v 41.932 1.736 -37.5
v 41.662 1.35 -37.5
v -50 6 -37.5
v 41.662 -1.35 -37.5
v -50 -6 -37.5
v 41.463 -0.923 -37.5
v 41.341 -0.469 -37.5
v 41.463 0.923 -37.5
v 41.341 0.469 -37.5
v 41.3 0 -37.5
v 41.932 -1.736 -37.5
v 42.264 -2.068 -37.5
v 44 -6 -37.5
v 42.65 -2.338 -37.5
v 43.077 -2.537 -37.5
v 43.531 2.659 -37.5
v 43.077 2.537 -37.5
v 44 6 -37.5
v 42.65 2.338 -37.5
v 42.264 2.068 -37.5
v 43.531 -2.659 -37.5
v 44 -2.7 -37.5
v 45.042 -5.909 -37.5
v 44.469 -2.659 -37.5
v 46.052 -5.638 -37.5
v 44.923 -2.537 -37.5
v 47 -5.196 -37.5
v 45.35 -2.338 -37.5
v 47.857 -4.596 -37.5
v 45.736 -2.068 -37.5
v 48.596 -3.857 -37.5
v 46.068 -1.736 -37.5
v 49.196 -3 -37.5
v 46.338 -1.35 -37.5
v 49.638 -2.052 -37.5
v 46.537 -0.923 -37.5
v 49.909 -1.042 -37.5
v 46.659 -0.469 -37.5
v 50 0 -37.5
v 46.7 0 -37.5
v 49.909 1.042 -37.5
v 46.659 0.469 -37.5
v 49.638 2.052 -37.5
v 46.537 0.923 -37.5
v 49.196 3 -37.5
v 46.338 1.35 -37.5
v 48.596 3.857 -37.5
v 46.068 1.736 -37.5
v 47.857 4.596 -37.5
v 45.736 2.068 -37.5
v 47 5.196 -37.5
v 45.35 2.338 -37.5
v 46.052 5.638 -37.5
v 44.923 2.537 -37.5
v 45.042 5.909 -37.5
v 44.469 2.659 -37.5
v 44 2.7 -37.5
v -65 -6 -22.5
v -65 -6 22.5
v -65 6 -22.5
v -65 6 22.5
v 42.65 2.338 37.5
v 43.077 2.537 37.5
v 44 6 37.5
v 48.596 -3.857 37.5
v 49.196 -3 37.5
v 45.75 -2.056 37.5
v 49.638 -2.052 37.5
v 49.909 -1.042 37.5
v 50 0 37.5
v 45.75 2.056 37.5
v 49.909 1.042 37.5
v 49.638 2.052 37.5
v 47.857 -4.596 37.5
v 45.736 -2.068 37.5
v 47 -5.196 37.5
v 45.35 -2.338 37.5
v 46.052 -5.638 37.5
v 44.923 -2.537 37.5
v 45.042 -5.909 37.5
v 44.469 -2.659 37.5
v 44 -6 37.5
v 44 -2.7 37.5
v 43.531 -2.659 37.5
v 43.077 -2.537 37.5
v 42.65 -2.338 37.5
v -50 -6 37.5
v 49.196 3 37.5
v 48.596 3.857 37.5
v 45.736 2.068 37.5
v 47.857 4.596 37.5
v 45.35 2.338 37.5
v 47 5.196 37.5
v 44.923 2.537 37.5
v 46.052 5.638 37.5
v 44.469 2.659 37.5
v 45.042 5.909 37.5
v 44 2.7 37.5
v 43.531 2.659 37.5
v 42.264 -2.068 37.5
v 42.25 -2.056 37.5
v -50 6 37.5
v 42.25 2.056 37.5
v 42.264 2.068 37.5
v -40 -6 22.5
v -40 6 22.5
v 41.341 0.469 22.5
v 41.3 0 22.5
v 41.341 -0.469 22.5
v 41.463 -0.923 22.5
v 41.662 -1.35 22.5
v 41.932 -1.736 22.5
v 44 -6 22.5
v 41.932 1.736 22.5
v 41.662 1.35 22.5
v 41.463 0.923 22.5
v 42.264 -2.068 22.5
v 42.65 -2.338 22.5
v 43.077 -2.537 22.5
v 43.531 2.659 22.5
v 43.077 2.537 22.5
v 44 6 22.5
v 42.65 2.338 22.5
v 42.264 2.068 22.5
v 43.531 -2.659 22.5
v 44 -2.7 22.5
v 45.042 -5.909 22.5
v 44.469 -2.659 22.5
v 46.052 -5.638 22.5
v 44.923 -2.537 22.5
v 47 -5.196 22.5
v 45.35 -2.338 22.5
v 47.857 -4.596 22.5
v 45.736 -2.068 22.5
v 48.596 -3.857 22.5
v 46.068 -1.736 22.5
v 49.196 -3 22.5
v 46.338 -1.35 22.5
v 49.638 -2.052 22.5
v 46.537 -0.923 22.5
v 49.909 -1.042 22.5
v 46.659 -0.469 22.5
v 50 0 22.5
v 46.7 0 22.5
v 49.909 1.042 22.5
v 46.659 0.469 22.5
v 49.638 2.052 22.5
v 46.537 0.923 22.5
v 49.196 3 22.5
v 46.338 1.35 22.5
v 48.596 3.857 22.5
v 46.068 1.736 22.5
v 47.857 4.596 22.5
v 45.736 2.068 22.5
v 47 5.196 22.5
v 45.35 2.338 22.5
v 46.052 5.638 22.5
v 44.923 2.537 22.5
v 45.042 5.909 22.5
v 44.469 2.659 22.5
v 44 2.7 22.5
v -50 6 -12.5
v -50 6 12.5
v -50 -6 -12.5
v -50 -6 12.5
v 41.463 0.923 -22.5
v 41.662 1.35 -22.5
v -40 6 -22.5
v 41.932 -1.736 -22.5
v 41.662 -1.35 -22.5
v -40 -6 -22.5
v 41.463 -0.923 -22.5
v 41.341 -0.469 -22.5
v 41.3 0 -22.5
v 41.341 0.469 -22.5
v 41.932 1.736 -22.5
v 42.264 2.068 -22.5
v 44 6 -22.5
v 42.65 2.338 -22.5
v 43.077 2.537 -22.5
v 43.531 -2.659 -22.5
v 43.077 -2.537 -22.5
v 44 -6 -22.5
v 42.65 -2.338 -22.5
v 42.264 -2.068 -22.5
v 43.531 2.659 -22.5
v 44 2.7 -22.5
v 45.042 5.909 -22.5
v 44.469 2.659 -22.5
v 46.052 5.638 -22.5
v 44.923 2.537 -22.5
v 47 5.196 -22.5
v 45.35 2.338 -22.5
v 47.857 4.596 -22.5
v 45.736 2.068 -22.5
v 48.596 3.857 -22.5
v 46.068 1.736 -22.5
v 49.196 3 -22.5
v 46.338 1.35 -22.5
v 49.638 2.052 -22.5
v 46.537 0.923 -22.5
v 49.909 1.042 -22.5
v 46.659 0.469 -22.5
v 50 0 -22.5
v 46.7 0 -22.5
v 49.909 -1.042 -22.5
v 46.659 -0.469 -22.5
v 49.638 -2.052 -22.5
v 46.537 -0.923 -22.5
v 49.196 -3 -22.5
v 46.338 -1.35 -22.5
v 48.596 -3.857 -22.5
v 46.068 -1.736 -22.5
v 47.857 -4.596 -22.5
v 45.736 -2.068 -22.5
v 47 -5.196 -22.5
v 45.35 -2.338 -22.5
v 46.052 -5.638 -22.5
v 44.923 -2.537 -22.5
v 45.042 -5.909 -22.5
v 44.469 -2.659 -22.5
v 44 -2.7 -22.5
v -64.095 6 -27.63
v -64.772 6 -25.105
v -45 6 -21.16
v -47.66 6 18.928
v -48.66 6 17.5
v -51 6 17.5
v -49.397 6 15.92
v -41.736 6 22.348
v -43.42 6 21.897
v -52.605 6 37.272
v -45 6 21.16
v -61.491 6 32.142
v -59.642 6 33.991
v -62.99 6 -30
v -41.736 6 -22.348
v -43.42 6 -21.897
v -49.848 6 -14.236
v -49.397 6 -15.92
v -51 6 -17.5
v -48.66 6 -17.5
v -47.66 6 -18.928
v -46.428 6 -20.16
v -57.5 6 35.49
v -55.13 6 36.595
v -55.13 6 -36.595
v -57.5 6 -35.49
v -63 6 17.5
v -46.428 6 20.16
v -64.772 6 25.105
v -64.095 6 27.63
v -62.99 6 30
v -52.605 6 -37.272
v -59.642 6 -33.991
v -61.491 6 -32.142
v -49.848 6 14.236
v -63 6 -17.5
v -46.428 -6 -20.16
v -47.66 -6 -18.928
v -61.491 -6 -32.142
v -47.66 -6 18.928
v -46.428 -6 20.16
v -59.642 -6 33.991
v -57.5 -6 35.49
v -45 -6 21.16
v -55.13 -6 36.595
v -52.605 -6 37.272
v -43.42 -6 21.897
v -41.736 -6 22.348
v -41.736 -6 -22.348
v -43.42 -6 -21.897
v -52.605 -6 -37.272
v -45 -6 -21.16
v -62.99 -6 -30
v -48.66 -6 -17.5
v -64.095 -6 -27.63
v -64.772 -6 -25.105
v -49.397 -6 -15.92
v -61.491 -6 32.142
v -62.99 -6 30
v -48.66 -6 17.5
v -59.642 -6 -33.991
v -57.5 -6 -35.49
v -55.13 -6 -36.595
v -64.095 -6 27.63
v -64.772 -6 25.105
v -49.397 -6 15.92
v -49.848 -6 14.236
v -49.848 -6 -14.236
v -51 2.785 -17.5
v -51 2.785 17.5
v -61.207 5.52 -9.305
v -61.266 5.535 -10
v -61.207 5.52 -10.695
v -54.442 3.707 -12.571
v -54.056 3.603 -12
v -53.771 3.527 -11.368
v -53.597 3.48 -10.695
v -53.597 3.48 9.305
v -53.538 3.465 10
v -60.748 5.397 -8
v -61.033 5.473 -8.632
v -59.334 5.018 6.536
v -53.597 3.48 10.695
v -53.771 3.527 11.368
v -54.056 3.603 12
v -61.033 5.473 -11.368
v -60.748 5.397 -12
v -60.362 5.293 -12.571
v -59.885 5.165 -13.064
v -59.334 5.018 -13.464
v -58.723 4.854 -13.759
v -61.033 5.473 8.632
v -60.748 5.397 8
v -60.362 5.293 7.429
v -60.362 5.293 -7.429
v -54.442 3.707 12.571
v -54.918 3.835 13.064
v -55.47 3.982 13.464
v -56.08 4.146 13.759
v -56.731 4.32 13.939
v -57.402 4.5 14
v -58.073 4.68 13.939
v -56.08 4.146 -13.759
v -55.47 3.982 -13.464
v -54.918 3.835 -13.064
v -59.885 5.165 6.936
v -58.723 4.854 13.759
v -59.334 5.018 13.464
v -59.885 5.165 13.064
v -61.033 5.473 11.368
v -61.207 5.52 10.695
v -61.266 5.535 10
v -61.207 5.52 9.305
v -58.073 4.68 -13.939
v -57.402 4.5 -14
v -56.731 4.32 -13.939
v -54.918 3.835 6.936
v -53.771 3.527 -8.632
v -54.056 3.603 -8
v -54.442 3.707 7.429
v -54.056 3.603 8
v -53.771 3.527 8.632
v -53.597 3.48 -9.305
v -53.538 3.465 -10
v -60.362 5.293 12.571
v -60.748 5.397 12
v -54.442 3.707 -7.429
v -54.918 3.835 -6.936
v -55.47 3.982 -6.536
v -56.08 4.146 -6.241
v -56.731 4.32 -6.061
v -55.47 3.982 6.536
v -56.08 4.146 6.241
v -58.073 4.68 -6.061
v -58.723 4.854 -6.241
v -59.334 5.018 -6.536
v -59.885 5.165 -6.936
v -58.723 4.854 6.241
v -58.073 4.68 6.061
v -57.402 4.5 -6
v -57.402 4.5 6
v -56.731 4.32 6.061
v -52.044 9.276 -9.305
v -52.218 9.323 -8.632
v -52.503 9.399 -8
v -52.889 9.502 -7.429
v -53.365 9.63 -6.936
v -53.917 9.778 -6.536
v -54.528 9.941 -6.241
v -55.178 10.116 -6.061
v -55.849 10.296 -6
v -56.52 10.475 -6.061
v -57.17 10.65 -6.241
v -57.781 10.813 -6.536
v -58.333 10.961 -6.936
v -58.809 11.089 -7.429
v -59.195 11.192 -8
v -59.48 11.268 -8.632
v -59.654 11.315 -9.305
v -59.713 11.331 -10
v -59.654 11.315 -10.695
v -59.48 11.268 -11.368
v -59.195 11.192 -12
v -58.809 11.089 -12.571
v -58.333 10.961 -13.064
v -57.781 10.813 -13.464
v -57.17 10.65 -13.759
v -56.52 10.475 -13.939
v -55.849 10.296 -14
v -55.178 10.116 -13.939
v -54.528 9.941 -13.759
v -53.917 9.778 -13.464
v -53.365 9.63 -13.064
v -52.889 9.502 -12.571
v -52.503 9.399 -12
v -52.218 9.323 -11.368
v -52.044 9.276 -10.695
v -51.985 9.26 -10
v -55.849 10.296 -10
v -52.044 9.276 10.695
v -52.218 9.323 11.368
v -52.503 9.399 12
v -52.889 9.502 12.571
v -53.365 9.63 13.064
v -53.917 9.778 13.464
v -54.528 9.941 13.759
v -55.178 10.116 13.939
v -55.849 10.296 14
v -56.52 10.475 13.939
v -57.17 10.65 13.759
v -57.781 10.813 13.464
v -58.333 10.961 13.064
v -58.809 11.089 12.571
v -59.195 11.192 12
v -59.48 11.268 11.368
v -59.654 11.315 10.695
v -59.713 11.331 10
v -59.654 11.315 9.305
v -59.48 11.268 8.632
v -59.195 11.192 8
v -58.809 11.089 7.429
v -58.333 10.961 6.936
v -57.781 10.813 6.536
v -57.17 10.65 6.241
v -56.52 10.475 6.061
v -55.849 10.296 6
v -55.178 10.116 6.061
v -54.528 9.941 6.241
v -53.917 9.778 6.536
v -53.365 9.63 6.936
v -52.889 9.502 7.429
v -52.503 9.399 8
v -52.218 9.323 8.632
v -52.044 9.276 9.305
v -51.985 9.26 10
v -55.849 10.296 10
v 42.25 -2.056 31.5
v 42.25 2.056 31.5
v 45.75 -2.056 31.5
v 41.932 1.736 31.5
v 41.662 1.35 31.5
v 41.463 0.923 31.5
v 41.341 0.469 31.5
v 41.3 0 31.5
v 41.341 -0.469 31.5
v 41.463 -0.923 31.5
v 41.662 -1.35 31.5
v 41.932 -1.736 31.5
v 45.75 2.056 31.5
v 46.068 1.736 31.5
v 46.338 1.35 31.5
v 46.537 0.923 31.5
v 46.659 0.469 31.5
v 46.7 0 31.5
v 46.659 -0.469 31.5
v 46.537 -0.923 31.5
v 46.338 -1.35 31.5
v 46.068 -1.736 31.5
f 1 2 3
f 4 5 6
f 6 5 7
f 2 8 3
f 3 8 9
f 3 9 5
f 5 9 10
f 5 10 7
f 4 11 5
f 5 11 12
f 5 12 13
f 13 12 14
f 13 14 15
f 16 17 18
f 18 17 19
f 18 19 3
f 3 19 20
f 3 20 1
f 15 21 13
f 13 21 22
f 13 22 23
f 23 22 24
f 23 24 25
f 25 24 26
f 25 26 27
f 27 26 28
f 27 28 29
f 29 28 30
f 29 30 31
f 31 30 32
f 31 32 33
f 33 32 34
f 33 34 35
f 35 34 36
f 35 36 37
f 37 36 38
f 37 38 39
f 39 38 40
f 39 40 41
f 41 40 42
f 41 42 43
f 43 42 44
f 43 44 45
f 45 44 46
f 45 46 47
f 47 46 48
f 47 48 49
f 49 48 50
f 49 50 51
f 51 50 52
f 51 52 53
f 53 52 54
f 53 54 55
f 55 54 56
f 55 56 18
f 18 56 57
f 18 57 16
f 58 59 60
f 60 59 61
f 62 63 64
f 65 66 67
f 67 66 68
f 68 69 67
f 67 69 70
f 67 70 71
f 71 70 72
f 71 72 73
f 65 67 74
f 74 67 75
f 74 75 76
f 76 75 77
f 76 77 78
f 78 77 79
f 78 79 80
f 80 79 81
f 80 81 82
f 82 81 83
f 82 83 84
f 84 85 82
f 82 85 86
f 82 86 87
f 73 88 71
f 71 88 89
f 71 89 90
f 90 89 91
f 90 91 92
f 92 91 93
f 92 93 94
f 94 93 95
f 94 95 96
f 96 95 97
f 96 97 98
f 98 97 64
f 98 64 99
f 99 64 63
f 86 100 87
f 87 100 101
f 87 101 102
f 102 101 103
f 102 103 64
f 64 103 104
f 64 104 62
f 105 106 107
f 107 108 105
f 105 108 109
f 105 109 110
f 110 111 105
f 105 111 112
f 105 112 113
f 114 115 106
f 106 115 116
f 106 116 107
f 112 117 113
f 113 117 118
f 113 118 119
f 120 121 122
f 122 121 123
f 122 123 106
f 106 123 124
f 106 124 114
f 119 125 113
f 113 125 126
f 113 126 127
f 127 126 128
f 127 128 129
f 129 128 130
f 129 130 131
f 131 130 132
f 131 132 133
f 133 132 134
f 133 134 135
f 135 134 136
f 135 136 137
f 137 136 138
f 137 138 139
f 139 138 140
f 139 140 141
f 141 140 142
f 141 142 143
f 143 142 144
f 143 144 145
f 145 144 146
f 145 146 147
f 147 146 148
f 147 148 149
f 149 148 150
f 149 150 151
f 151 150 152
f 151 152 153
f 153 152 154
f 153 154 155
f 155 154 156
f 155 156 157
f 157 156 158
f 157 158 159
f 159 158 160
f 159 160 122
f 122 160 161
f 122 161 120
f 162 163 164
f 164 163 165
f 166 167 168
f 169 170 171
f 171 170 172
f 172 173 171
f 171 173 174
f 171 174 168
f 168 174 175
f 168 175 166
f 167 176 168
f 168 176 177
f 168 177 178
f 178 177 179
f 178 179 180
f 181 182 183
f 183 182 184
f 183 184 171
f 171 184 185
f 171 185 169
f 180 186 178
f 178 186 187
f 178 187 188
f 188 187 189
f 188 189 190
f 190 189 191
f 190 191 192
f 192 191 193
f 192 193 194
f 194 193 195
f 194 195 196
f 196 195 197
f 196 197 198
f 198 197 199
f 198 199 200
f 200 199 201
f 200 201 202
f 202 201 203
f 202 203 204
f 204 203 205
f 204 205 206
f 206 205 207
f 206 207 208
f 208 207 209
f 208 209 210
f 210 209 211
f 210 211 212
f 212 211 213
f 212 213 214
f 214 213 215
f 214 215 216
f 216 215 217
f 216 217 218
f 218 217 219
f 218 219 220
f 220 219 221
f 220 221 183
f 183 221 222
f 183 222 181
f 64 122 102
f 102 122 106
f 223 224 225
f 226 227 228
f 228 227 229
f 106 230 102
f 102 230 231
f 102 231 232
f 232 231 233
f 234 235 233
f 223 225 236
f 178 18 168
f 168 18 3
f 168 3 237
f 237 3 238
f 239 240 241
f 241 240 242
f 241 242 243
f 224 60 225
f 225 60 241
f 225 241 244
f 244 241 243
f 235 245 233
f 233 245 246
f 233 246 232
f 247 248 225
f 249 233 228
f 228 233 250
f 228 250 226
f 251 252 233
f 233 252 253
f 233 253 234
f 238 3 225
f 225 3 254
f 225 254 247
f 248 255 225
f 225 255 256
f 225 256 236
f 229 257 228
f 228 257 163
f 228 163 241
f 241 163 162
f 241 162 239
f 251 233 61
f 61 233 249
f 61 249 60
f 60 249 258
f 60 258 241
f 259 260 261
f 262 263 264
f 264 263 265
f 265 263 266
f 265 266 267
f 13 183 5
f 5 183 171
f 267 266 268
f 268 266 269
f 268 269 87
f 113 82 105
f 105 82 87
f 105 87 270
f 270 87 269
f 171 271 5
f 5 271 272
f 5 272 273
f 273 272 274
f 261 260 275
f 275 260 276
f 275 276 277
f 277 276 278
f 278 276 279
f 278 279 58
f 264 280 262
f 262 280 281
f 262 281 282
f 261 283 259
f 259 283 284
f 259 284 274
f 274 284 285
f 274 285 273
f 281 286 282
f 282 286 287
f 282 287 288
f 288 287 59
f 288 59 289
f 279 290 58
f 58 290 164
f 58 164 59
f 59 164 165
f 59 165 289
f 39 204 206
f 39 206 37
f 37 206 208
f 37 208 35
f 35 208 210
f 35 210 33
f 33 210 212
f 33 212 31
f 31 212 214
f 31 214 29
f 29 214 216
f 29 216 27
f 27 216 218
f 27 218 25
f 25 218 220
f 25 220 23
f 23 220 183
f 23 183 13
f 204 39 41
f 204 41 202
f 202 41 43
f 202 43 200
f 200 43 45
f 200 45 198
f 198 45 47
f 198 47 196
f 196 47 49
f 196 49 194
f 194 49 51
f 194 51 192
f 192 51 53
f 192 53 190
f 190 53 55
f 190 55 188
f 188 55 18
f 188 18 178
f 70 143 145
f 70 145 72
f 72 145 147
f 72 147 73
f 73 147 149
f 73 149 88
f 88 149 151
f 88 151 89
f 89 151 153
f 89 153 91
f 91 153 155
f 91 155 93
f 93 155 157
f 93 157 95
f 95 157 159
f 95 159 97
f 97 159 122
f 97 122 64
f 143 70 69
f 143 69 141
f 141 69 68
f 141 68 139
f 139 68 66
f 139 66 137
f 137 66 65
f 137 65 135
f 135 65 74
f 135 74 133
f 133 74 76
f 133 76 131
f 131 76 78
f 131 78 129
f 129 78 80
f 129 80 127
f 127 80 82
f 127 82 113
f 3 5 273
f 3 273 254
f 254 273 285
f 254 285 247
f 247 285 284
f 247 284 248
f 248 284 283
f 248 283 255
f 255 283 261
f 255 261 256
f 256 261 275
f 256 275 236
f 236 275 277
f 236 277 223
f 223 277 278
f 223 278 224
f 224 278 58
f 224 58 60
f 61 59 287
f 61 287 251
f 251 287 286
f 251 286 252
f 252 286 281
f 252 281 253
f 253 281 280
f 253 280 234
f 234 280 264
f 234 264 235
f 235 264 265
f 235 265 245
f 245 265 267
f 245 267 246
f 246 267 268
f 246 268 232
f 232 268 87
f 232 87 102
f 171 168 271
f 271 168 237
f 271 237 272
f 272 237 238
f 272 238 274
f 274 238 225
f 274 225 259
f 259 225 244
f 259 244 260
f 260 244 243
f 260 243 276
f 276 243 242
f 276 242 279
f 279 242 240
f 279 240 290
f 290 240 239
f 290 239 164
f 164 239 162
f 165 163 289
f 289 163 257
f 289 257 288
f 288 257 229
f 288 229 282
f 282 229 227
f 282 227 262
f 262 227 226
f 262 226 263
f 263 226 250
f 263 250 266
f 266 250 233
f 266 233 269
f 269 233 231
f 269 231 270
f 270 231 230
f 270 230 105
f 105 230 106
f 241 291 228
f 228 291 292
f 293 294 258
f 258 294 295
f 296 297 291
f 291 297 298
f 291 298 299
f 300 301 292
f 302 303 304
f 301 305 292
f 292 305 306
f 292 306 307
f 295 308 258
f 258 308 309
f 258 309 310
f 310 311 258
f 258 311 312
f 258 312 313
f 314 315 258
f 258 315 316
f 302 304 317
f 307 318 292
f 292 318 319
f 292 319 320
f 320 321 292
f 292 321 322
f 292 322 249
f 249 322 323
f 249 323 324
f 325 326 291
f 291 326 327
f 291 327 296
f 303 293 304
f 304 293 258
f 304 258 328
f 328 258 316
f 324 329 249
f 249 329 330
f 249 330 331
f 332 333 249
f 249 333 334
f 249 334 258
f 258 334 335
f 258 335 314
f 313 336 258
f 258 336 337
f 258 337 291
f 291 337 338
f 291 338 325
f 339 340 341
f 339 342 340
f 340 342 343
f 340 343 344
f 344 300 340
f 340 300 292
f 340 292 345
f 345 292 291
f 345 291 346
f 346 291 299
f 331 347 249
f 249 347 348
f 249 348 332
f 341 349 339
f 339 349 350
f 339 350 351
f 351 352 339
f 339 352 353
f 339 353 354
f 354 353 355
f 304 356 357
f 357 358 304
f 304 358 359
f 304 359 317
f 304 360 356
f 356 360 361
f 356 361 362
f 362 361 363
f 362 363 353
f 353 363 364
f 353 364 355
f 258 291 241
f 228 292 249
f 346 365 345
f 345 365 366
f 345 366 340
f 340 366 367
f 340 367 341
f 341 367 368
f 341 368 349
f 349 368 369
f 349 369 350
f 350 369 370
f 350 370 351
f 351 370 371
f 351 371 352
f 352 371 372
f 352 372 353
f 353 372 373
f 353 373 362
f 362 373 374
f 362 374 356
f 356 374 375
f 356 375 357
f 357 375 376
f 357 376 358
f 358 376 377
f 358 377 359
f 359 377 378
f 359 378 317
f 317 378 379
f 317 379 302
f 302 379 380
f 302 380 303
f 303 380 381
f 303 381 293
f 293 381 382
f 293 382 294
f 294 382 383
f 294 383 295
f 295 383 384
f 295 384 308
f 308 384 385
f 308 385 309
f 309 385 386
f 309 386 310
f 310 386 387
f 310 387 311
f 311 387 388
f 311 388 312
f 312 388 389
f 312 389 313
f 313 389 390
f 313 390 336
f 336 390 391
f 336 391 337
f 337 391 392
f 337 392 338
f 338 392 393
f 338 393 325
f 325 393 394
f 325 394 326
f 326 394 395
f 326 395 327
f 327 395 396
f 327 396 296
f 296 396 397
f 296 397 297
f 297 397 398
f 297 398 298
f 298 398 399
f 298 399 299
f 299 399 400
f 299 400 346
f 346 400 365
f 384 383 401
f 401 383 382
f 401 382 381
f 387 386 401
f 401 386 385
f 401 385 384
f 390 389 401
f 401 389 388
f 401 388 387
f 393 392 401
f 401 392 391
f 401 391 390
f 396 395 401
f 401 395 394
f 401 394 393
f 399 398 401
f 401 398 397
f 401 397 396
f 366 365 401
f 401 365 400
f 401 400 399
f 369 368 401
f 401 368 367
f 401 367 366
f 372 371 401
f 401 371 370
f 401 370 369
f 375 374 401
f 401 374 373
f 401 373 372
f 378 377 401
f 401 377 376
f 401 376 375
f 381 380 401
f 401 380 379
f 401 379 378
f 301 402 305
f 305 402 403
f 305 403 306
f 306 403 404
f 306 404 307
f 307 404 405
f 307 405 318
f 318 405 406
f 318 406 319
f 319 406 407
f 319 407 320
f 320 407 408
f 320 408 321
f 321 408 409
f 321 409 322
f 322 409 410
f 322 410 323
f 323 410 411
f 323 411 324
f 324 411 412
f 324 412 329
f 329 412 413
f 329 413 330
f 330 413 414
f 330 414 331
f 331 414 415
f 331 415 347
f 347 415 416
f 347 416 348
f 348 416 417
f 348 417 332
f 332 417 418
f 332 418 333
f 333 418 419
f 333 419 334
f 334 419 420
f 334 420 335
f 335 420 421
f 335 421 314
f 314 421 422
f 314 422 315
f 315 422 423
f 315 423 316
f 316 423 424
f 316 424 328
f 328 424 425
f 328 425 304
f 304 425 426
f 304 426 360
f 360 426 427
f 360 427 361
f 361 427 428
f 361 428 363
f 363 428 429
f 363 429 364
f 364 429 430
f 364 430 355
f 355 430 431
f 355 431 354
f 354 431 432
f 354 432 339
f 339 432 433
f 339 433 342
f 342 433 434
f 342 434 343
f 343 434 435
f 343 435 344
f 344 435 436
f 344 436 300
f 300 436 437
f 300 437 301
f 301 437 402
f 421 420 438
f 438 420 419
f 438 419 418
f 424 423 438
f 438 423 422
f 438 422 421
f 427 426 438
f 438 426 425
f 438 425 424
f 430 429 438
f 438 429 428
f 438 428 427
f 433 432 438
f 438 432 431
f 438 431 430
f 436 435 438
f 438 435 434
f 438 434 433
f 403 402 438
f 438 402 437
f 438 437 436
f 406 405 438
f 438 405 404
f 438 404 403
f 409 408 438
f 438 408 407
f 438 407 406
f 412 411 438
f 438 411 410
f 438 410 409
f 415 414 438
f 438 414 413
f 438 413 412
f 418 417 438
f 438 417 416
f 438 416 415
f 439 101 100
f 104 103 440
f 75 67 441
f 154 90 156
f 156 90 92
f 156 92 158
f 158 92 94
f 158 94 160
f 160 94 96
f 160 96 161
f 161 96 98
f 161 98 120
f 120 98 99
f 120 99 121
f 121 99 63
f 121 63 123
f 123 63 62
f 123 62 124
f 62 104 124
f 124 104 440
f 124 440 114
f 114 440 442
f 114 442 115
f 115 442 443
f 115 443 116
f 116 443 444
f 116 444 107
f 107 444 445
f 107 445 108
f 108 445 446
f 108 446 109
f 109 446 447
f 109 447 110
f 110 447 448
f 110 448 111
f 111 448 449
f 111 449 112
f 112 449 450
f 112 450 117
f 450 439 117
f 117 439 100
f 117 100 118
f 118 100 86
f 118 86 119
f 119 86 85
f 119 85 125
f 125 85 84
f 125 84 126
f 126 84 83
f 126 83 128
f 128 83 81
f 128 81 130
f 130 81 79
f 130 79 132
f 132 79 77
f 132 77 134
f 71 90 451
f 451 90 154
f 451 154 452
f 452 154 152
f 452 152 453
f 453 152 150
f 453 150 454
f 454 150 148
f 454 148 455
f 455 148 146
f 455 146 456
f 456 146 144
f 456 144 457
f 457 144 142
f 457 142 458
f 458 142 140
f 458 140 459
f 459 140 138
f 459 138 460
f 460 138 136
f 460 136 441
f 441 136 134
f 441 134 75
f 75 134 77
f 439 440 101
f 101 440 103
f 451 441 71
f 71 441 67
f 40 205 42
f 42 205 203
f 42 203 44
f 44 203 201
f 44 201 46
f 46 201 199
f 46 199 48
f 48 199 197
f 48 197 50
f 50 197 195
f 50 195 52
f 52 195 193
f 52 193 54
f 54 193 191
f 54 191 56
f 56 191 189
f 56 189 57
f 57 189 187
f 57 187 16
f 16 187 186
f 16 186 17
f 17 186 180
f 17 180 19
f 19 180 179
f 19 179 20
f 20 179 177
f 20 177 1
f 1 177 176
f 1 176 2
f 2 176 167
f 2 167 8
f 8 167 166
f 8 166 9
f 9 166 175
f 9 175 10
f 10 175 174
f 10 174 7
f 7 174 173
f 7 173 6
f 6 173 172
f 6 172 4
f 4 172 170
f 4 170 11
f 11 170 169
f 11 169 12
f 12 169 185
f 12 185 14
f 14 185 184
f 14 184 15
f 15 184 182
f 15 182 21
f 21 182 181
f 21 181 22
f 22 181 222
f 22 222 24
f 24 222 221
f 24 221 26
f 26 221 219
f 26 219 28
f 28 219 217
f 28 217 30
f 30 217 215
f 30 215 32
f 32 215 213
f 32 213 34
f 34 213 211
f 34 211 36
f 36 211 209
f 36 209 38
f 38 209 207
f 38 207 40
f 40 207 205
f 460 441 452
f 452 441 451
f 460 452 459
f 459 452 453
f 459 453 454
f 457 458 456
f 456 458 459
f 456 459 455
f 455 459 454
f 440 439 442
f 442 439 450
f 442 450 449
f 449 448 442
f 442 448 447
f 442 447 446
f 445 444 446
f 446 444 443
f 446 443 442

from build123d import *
from OCP.BRepFilletAPI import BRepFilletAPI_MakeFillet
from build123d.topology import SkipClean

# Parameters (mm, degrees)
BOSS_EXTRUDE1_DEPTH = 6
FILLET1_R           = 6
FILLET2_R1          = 10
FILLET2_R2          = 15
CUT_EXTRUDE1_DEPTH  = 17.5
SKETCH5_R           = 4
BOSS_EXTRUDE2_DEPTH = 6
CUT_EXTRUDE2_DEPTH  = 6
SKETCH7_R           = 2.7
CUT_EXTRUDE4_DEPTH  = 96.469302576


with BuildPart() as part:
    # Sketch1 → Boss-Extrude1 (new, symmetric)
    with BuildSketch(Plane(origin=(0, 0, 0), x_dir=(1, 0, 0), z_dir=(0, 1, 0))):
        Polygon((50, 37.5), (50, 22.5), (-50, 22.5), (-50, -22.5), (50, -22.5), (50, -37.5), (-65, -37.5), (-65, 37.5), align=None)
    extrude(amount=BOSS_EXTRUDE1_DEPTH, both=True)

    # Fillet1
    fillet1_edges = [part.edges().sort_by_distance(p)[0] for p in [
        (50, 6, -30),
        (50, -6, -30),
        (50, -6, 30),
        (50, 6, 30),
    ]]
    fillet(fillet1_edges, radius=FILLET1_R - 0.0001)  # a hair under: the kernel refuses the full size

    # Fillet2: one fillet with a radius per group of edges: ONE call of the kernel's fillet builder (fillet() takes one radius for all edges)
    fillet2_edges_1 = [part.edges().sort_by_distance(p)[0] for p in [
        (-50, 0, 22.5),
        (-50, 0, -22.5),
    ]]
    fillet2_edges_2 = [part.edges().sort_by_distance(p)[0] for p in [
        (-65, 0, 37.5),
        (-65, 0, -37.5),
    ]]
    fillet2 = BRepFilletAPI_MakeFillet(part.part.solid().wrapped)
    for e in fillet2_edges_1:
        fillet2.Add(FILLET2_R1, e.wrapped)
    for e in fillet2_edges_2:
        fillet2.Add(FILLET2_R2, e.wrapped)
    add(Compound.cast(fillet2.Shape()), mode=Mode.REPLACE)

    # Sketch4 → Cut-Extrude1 (cut, symmetric)
    with BuildSketch(Plane.XY):
        Polygon((-63, 6), (-51, 2.784609691), (-51, 6), align=None)
    extrude(amount=CUT_EXTRUDE1_DEPTH, both=True, mode=Mode.SUBTRACT)

    # Sketch5 → Boss-Extrude2 (add)
    with BuildSketch(Plane(origin=(-2.720199781, -10.151923789, 0), x_dir=(0.9659258262890701, -0.25881904510251424, 0), z_dir=(0.25881904510251424, 0.9659258262890701, 0))):
        with Locations((-56.610686369, 10)):
            Circle(SKETCH5_R)
        with Locations((-56.610686369, -10)):
            Circle(SKETCH5_R)
    extrude(amount=BOSS_EXTRUDE2_DEPTH)

    # Sketch6 → Cut-Extrude2 (cut)
    with BuildSketch(Plane.XY.offset(37.5)):
        with BuildLine():
            Line((42.25, -2.056088519), (42.25, 2.056088519))
            ThreePointArc((42.25, 2.056088519), (44, 2.7), (45.75, 2.056088519))
            Line((45.75, 2.056088519), (45.75, -2.056088519))
            ThreePointArc((45.75, -2.056088519), (44, -2.7), (42.25, -2.056088519))
        make_face()
    extrude(amount=-CUT_EXTRUDE2_DEPTH, mode=Mode.SUBTRACT)

    # Sketch7 → Cut-Extrude4 (cut, through all)
    with SkipClean():  # the faces are left unmerged after this step: merging them gives an invalid solid
        with BuildSketch(Plane.XY.offset(31.5)):
            with Locations((44, 0)):
                Circle(SKETCH7_R)
        extrude(amount=-CUT_EXTRUDE4_DEPTH, mode=Mode.SUBTRACT)


solid = part.part
